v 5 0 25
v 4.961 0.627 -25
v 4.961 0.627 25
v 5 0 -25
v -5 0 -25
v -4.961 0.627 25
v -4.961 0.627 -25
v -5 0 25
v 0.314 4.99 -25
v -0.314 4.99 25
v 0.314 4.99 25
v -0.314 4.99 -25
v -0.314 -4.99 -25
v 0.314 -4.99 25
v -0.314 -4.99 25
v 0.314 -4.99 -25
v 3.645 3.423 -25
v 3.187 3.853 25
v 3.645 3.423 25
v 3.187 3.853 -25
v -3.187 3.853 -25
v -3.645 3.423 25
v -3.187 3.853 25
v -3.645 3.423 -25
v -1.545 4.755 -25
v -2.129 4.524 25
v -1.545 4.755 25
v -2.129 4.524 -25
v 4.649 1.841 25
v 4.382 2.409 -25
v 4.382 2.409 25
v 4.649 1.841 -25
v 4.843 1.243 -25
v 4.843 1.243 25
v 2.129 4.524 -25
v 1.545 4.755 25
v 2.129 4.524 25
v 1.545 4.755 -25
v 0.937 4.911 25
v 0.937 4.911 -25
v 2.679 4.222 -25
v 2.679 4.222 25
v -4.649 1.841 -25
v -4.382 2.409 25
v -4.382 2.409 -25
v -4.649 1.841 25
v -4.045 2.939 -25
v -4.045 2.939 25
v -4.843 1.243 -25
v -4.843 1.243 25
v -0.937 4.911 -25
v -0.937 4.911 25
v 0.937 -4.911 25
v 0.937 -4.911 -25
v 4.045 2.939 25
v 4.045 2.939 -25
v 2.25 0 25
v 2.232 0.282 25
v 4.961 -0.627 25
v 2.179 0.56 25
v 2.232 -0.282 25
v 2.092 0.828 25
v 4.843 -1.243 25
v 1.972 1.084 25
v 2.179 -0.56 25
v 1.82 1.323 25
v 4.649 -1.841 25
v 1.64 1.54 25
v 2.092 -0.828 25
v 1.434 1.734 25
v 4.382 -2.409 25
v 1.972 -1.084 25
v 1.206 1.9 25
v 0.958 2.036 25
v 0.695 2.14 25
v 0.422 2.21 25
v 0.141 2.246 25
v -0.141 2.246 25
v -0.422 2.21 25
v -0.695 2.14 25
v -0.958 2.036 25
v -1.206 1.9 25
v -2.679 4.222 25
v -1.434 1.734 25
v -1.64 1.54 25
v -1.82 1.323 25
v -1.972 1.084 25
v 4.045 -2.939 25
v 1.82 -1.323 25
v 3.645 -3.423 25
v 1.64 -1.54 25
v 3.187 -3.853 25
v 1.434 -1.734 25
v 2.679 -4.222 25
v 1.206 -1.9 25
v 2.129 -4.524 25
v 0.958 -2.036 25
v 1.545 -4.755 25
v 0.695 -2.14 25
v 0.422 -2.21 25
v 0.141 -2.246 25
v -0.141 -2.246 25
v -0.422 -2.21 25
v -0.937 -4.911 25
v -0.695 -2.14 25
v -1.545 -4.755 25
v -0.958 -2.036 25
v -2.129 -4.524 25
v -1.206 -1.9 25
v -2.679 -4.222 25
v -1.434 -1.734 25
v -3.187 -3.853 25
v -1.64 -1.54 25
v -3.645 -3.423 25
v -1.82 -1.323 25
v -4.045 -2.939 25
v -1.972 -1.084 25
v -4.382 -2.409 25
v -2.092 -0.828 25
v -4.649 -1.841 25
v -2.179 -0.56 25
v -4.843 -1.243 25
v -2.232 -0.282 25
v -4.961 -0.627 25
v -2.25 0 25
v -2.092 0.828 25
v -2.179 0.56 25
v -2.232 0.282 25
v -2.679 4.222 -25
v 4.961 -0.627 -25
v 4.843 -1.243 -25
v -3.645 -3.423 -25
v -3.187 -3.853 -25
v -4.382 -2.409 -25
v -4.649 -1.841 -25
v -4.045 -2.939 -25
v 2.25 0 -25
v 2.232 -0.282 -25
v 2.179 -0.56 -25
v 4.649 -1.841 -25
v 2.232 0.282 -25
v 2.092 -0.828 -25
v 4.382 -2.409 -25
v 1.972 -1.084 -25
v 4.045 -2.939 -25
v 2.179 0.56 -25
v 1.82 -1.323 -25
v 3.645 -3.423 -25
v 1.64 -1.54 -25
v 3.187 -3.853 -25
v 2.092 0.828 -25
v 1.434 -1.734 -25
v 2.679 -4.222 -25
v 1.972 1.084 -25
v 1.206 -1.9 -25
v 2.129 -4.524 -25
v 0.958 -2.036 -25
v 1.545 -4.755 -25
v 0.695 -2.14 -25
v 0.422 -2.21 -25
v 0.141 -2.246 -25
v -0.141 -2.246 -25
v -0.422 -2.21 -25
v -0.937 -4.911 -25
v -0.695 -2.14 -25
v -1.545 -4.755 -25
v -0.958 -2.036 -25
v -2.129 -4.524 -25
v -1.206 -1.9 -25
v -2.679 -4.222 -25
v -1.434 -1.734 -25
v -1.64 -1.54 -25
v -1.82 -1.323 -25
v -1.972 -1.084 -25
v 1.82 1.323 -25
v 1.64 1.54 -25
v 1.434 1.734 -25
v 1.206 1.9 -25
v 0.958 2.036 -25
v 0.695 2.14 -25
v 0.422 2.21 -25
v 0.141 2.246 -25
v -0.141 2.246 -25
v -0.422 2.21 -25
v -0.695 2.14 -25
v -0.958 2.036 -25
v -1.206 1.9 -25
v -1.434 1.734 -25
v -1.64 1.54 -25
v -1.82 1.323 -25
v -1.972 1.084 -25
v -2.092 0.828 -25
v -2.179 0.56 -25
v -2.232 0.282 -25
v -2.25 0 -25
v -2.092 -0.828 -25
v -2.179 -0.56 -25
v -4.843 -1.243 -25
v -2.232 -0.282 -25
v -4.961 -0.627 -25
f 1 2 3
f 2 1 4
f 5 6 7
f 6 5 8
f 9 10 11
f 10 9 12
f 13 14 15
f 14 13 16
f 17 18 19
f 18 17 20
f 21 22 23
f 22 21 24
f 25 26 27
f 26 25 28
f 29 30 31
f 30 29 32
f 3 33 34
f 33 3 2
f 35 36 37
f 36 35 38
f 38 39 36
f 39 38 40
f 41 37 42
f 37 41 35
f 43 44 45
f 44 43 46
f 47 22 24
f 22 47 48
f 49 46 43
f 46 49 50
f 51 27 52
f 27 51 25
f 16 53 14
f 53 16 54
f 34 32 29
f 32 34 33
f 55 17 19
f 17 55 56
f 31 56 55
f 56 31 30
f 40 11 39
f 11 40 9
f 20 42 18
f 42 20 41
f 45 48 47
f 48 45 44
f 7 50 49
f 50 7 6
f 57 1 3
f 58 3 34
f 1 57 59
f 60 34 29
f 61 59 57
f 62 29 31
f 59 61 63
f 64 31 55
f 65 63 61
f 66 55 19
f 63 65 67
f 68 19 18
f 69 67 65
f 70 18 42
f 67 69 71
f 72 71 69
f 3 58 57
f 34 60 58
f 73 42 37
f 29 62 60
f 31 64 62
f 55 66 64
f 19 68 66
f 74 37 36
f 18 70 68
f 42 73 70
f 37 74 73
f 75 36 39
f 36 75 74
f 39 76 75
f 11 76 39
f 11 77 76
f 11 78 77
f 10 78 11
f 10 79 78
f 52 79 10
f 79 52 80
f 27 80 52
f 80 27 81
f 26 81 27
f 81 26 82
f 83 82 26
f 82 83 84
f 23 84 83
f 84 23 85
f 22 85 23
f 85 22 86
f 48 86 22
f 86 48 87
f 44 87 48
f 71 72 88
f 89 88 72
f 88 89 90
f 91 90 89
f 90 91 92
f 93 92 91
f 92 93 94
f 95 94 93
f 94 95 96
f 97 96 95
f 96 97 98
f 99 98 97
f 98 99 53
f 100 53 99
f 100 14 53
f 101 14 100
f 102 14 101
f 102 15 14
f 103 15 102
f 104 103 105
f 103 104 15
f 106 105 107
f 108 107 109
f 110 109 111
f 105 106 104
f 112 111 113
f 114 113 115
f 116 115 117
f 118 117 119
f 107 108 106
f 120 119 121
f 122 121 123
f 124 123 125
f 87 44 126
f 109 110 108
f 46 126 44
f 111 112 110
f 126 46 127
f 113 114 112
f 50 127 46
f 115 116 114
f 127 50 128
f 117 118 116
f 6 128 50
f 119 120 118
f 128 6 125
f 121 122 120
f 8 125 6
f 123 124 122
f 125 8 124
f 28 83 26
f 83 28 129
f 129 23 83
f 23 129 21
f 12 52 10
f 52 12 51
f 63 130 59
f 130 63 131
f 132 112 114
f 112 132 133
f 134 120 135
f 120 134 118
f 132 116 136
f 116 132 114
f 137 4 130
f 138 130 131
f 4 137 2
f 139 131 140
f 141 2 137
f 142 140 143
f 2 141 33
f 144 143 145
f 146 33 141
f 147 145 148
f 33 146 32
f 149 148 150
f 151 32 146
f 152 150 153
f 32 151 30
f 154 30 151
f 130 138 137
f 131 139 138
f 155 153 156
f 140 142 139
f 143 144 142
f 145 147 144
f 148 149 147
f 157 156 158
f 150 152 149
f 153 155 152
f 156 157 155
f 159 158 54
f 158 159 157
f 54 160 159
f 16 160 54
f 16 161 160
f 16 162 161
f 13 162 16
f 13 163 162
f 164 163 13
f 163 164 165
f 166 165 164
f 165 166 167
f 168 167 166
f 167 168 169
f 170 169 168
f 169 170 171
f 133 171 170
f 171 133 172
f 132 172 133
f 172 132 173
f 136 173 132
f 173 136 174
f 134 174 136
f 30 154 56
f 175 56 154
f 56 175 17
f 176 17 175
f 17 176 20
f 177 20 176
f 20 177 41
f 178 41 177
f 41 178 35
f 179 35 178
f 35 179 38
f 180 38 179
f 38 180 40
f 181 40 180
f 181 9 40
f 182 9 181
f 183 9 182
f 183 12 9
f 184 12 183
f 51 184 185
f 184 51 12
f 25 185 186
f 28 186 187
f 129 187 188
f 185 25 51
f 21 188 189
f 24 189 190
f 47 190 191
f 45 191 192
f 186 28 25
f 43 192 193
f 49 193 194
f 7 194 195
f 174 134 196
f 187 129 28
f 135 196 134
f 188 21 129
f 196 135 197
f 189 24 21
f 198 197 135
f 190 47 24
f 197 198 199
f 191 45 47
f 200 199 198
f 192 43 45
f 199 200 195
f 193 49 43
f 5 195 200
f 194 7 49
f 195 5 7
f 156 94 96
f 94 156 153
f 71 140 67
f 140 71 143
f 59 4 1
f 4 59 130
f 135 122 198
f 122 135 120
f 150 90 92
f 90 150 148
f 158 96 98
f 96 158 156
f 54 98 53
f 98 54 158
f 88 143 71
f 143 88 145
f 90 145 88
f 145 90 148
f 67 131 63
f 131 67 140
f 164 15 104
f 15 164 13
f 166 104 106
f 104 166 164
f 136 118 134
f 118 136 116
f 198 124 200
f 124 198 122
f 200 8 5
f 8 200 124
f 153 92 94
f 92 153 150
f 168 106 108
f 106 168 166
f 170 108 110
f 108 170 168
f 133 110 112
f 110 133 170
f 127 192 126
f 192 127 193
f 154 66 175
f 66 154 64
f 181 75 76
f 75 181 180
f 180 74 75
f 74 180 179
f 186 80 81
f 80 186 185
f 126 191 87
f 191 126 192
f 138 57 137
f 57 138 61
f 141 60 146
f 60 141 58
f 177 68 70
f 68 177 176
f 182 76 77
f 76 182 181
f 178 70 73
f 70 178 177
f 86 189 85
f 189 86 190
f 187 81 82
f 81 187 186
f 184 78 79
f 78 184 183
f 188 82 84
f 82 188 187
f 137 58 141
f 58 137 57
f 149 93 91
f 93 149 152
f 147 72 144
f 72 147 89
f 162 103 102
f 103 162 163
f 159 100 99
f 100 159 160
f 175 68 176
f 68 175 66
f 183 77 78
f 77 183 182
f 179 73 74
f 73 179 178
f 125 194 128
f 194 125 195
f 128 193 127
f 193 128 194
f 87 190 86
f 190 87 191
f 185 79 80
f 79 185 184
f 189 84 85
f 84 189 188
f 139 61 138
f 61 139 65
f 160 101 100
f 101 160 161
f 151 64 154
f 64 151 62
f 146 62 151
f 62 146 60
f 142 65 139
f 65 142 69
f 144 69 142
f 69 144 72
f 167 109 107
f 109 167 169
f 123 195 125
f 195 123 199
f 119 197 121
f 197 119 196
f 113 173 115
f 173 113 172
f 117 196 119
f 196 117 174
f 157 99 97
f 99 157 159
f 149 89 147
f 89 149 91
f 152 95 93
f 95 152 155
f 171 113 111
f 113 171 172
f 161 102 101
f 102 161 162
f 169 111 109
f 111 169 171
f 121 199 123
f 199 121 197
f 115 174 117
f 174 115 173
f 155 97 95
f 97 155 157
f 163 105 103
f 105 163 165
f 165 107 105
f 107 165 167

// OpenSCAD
$fn = 50;


difference() {
	union() {
		translate(v = [0, 0, -25.0000000000]) {
			cylinder(h = 50, r = 5.0000000000);
		}
	}
	union() {
		translate(v = [0, 0, -100.0000000000]) {
			cylinder(h = 200, r = 2.2500000000);
		}
	}
}
